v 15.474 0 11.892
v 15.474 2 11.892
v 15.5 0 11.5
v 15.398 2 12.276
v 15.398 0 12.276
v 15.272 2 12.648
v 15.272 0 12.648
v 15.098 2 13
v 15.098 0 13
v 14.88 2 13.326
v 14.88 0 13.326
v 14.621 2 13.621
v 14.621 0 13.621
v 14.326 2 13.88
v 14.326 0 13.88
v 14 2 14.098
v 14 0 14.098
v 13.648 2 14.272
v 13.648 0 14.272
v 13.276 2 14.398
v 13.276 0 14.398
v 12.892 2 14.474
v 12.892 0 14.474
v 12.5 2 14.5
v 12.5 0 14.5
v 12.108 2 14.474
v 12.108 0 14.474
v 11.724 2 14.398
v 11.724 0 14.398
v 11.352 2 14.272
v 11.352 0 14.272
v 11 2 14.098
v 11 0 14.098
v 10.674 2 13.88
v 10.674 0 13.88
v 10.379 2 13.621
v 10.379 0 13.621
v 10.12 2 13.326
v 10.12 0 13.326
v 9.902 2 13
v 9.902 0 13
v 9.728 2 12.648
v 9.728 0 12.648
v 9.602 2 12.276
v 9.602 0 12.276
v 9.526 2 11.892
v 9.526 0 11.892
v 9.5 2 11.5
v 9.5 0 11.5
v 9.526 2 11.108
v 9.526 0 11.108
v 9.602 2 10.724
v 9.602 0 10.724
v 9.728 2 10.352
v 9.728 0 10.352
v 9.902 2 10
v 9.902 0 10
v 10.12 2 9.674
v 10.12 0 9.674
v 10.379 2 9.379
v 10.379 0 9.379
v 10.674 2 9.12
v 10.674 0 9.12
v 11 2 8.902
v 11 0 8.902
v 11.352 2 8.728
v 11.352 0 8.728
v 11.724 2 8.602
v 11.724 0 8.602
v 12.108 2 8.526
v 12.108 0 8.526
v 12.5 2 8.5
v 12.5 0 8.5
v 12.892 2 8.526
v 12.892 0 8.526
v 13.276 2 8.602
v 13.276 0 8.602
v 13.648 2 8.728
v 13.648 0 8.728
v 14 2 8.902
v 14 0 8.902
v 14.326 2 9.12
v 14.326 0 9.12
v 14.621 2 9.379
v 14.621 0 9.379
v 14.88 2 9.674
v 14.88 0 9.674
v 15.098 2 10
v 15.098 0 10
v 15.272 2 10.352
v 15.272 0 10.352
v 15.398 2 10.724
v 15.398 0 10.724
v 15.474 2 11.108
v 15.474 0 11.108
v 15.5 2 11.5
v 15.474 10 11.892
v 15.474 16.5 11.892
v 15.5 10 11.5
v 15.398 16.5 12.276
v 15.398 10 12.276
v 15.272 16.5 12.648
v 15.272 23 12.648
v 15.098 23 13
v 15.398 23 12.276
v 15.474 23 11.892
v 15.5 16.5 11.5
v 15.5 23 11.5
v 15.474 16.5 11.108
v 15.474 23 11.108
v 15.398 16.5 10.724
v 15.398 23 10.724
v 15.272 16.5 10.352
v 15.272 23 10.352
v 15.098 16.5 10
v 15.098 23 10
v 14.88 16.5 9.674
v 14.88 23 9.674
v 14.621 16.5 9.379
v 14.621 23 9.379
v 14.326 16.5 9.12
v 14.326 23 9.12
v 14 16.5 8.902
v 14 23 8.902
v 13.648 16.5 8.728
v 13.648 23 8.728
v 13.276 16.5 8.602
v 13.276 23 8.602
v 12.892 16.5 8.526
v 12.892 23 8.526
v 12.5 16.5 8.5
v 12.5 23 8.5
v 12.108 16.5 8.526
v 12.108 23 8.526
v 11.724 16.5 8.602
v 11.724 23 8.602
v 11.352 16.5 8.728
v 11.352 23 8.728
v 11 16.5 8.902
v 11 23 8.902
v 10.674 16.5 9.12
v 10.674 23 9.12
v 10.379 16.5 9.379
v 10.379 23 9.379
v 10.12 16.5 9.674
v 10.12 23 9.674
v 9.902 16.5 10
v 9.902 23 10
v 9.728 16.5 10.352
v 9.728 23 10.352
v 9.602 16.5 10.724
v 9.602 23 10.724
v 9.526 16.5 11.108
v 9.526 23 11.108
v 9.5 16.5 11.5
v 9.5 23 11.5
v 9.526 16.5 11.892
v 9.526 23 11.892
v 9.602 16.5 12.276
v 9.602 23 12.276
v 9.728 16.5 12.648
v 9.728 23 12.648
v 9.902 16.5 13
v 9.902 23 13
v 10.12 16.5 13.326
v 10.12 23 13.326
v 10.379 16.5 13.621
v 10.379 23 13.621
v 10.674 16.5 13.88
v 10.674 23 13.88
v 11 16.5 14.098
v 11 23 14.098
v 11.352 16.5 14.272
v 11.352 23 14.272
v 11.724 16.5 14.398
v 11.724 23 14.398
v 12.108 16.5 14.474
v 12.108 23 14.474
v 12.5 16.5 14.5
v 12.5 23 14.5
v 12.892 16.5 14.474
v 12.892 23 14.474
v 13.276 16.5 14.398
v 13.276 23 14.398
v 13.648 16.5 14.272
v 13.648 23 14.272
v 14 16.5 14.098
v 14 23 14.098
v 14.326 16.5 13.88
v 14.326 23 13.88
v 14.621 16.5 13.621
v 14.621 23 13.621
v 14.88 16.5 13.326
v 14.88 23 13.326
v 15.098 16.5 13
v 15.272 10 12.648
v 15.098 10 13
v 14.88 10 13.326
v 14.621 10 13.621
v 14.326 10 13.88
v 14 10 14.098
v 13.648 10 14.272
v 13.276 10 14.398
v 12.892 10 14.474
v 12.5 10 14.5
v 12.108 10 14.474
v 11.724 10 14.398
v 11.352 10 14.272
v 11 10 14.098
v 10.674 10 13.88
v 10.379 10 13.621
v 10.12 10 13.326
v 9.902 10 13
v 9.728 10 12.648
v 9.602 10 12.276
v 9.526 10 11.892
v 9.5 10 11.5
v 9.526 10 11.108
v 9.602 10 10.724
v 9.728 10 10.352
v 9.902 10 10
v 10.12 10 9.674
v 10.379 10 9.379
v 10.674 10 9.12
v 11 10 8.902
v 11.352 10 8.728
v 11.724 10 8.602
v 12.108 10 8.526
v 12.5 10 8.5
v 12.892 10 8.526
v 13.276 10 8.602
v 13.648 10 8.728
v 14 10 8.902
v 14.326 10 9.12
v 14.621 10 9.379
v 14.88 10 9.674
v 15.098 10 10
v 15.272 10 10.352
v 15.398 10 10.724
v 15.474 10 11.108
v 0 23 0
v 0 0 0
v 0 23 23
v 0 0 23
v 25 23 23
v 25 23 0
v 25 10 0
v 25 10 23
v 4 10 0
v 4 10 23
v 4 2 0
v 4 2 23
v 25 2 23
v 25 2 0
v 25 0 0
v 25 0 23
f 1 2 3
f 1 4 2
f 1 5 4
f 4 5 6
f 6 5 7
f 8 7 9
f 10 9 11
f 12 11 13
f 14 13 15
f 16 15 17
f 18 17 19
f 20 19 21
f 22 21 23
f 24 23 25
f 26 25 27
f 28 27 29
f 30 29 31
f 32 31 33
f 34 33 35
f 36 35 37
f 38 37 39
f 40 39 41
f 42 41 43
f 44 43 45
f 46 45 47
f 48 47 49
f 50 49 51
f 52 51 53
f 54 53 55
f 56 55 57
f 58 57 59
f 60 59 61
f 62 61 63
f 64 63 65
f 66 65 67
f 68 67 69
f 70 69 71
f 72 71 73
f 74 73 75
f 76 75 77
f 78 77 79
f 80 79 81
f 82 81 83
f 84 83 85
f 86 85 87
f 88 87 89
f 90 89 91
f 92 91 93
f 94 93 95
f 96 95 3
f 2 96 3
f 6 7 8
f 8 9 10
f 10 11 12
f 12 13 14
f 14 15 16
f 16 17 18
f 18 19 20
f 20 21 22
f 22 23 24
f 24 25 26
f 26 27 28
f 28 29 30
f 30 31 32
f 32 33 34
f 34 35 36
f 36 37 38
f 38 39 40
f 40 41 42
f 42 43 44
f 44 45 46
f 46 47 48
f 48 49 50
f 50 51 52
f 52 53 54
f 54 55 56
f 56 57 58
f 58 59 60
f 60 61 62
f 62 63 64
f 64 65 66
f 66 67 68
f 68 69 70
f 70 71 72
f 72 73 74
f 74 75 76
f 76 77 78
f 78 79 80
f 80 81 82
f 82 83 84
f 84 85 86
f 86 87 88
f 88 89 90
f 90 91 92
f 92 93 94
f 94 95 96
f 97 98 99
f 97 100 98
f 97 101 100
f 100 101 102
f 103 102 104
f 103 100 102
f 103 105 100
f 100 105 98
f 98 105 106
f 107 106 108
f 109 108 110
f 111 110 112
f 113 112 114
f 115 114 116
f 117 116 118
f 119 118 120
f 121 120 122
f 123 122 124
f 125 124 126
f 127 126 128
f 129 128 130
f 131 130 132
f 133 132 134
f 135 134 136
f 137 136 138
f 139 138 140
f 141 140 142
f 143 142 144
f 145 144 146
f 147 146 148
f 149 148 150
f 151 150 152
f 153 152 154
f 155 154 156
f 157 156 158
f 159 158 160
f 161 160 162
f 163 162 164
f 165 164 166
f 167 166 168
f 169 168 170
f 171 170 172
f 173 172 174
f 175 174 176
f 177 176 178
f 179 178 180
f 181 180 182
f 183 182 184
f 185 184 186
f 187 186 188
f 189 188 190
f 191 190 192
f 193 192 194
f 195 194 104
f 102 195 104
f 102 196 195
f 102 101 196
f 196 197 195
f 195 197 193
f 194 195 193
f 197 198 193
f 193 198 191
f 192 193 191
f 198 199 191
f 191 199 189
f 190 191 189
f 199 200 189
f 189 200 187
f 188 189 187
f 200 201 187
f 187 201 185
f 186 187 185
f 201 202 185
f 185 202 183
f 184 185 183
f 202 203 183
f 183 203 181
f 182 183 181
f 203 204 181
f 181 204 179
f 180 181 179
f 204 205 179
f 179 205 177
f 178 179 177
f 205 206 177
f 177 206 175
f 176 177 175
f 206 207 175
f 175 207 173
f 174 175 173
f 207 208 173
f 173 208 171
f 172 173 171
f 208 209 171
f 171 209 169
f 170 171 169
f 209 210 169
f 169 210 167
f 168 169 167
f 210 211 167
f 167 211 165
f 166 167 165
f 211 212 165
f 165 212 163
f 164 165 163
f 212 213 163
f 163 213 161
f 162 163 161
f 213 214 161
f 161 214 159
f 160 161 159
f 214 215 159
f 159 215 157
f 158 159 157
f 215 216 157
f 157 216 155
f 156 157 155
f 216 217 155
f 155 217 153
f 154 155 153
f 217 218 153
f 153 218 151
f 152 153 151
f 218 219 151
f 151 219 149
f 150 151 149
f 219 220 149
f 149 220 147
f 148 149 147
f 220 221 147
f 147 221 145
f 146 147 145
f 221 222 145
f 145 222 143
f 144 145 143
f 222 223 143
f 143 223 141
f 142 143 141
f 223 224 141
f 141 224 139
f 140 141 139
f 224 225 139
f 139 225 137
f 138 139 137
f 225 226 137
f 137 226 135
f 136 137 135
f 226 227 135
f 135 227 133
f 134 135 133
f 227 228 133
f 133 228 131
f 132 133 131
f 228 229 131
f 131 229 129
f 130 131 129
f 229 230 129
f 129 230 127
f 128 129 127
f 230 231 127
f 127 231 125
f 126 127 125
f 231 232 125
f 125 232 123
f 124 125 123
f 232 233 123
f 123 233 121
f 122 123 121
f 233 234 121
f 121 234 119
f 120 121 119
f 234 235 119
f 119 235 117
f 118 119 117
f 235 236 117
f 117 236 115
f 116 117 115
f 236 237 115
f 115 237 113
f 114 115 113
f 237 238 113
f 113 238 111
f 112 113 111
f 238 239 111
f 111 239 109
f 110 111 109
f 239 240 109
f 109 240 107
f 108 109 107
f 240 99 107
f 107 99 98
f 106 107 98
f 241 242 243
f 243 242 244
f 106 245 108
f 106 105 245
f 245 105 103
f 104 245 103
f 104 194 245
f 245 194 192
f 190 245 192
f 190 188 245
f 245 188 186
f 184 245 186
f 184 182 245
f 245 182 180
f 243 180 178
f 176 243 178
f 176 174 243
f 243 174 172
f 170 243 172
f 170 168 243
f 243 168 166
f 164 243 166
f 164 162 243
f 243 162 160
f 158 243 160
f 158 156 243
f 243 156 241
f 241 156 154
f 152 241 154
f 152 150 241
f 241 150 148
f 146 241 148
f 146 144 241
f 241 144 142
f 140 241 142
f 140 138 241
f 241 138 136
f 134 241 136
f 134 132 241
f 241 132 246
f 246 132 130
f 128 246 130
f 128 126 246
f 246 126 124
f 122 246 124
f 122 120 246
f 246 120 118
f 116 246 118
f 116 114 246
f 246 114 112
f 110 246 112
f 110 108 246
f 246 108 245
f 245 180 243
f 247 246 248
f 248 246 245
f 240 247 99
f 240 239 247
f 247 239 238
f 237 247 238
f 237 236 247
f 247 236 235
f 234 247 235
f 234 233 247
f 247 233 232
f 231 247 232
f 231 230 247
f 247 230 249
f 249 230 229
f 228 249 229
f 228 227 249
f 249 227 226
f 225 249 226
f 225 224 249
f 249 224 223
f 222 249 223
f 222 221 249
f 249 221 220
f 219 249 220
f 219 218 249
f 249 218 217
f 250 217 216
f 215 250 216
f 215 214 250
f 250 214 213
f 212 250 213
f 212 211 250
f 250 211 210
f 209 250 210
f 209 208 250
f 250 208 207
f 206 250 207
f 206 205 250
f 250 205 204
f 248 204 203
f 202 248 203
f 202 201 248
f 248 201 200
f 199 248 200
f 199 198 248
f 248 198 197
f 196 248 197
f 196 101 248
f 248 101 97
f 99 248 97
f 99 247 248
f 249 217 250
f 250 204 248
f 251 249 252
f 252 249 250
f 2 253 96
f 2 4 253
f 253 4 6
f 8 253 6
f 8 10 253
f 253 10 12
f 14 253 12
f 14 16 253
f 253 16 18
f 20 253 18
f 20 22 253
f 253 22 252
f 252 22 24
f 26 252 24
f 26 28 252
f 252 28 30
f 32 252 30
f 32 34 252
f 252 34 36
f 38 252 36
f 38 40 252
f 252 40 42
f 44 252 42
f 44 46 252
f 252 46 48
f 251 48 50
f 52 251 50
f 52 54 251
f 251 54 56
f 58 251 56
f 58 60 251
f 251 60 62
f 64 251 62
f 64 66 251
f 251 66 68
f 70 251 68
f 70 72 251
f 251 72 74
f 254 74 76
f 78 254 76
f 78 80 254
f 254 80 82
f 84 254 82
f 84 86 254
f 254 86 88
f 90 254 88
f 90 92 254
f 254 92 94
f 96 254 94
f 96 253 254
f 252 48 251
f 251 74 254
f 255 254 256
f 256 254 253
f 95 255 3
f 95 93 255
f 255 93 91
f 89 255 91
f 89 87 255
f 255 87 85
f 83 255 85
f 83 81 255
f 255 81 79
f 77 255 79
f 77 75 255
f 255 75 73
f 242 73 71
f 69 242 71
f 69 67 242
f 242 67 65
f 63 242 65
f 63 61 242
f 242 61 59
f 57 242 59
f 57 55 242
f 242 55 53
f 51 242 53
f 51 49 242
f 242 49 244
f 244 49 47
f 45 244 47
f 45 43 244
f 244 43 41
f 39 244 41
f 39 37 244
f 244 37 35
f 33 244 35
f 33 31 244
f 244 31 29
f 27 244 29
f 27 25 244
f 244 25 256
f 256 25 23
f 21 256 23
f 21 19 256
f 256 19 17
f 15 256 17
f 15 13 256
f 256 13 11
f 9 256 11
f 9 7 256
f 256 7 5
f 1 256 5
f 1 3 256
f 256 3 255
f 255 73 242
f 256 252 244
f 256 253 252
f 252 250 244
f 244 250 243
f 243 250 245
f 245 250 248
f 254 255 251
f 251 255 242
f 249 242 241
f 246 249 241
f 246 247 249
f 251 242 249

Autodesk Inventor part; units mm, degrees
ref_plane "YZ Plane" through (0, 0, 0) normal (1, 0, 0) x (0, 1, 0)
ref_plane "XZ Plane" through (0, 0, 0) normal (0, 1, 0) x (-1, 0, 0)
ref_plane "XY Plane" through (0, 0, 0) normal (0, 0, 1) x (1, 0, 0)
sketch "Sketch1" plane through (0, 0, 0) normal (0, 0, 1) x (1, 0, 0)
  line L0 (0, 0) -> (25, 0)
  line L1 (25, 0) -> (25, 2)
  line L2 (25, 2) -> (4, 2)
  line L3 (4, 2) -> (4, 10)
  line L4 (4, 10) -> (25, 10)
  line L5 (25, 10) -> (25, 23)
  line L6 (25, 23) -> (0, 23)
  line L7 (0, 23) -> (0, 0)
  dimension "d0" = 25
  dimension "d1" = 2
  dimension "d2" = 8
  dimension "d5" = 13
extrude "Extrusion1" add sketch "Sketch1" along normal blind 23
sketch "Sketch2" plane through (0, 23, 0) normal (0, 1, 0) x (1, 0, 0)
  line L0 (0, 0) -> (25, 0) projected
  line L1 (25, 0) -> (25, -23) projected
  circle A0 centre (12.5, -11.5) radius 3
  dimension "d8" = 6
extrude "Extrusion2" cut sketch "Sketch2" against normal through all
properties part number "Eleveur support moteur"
